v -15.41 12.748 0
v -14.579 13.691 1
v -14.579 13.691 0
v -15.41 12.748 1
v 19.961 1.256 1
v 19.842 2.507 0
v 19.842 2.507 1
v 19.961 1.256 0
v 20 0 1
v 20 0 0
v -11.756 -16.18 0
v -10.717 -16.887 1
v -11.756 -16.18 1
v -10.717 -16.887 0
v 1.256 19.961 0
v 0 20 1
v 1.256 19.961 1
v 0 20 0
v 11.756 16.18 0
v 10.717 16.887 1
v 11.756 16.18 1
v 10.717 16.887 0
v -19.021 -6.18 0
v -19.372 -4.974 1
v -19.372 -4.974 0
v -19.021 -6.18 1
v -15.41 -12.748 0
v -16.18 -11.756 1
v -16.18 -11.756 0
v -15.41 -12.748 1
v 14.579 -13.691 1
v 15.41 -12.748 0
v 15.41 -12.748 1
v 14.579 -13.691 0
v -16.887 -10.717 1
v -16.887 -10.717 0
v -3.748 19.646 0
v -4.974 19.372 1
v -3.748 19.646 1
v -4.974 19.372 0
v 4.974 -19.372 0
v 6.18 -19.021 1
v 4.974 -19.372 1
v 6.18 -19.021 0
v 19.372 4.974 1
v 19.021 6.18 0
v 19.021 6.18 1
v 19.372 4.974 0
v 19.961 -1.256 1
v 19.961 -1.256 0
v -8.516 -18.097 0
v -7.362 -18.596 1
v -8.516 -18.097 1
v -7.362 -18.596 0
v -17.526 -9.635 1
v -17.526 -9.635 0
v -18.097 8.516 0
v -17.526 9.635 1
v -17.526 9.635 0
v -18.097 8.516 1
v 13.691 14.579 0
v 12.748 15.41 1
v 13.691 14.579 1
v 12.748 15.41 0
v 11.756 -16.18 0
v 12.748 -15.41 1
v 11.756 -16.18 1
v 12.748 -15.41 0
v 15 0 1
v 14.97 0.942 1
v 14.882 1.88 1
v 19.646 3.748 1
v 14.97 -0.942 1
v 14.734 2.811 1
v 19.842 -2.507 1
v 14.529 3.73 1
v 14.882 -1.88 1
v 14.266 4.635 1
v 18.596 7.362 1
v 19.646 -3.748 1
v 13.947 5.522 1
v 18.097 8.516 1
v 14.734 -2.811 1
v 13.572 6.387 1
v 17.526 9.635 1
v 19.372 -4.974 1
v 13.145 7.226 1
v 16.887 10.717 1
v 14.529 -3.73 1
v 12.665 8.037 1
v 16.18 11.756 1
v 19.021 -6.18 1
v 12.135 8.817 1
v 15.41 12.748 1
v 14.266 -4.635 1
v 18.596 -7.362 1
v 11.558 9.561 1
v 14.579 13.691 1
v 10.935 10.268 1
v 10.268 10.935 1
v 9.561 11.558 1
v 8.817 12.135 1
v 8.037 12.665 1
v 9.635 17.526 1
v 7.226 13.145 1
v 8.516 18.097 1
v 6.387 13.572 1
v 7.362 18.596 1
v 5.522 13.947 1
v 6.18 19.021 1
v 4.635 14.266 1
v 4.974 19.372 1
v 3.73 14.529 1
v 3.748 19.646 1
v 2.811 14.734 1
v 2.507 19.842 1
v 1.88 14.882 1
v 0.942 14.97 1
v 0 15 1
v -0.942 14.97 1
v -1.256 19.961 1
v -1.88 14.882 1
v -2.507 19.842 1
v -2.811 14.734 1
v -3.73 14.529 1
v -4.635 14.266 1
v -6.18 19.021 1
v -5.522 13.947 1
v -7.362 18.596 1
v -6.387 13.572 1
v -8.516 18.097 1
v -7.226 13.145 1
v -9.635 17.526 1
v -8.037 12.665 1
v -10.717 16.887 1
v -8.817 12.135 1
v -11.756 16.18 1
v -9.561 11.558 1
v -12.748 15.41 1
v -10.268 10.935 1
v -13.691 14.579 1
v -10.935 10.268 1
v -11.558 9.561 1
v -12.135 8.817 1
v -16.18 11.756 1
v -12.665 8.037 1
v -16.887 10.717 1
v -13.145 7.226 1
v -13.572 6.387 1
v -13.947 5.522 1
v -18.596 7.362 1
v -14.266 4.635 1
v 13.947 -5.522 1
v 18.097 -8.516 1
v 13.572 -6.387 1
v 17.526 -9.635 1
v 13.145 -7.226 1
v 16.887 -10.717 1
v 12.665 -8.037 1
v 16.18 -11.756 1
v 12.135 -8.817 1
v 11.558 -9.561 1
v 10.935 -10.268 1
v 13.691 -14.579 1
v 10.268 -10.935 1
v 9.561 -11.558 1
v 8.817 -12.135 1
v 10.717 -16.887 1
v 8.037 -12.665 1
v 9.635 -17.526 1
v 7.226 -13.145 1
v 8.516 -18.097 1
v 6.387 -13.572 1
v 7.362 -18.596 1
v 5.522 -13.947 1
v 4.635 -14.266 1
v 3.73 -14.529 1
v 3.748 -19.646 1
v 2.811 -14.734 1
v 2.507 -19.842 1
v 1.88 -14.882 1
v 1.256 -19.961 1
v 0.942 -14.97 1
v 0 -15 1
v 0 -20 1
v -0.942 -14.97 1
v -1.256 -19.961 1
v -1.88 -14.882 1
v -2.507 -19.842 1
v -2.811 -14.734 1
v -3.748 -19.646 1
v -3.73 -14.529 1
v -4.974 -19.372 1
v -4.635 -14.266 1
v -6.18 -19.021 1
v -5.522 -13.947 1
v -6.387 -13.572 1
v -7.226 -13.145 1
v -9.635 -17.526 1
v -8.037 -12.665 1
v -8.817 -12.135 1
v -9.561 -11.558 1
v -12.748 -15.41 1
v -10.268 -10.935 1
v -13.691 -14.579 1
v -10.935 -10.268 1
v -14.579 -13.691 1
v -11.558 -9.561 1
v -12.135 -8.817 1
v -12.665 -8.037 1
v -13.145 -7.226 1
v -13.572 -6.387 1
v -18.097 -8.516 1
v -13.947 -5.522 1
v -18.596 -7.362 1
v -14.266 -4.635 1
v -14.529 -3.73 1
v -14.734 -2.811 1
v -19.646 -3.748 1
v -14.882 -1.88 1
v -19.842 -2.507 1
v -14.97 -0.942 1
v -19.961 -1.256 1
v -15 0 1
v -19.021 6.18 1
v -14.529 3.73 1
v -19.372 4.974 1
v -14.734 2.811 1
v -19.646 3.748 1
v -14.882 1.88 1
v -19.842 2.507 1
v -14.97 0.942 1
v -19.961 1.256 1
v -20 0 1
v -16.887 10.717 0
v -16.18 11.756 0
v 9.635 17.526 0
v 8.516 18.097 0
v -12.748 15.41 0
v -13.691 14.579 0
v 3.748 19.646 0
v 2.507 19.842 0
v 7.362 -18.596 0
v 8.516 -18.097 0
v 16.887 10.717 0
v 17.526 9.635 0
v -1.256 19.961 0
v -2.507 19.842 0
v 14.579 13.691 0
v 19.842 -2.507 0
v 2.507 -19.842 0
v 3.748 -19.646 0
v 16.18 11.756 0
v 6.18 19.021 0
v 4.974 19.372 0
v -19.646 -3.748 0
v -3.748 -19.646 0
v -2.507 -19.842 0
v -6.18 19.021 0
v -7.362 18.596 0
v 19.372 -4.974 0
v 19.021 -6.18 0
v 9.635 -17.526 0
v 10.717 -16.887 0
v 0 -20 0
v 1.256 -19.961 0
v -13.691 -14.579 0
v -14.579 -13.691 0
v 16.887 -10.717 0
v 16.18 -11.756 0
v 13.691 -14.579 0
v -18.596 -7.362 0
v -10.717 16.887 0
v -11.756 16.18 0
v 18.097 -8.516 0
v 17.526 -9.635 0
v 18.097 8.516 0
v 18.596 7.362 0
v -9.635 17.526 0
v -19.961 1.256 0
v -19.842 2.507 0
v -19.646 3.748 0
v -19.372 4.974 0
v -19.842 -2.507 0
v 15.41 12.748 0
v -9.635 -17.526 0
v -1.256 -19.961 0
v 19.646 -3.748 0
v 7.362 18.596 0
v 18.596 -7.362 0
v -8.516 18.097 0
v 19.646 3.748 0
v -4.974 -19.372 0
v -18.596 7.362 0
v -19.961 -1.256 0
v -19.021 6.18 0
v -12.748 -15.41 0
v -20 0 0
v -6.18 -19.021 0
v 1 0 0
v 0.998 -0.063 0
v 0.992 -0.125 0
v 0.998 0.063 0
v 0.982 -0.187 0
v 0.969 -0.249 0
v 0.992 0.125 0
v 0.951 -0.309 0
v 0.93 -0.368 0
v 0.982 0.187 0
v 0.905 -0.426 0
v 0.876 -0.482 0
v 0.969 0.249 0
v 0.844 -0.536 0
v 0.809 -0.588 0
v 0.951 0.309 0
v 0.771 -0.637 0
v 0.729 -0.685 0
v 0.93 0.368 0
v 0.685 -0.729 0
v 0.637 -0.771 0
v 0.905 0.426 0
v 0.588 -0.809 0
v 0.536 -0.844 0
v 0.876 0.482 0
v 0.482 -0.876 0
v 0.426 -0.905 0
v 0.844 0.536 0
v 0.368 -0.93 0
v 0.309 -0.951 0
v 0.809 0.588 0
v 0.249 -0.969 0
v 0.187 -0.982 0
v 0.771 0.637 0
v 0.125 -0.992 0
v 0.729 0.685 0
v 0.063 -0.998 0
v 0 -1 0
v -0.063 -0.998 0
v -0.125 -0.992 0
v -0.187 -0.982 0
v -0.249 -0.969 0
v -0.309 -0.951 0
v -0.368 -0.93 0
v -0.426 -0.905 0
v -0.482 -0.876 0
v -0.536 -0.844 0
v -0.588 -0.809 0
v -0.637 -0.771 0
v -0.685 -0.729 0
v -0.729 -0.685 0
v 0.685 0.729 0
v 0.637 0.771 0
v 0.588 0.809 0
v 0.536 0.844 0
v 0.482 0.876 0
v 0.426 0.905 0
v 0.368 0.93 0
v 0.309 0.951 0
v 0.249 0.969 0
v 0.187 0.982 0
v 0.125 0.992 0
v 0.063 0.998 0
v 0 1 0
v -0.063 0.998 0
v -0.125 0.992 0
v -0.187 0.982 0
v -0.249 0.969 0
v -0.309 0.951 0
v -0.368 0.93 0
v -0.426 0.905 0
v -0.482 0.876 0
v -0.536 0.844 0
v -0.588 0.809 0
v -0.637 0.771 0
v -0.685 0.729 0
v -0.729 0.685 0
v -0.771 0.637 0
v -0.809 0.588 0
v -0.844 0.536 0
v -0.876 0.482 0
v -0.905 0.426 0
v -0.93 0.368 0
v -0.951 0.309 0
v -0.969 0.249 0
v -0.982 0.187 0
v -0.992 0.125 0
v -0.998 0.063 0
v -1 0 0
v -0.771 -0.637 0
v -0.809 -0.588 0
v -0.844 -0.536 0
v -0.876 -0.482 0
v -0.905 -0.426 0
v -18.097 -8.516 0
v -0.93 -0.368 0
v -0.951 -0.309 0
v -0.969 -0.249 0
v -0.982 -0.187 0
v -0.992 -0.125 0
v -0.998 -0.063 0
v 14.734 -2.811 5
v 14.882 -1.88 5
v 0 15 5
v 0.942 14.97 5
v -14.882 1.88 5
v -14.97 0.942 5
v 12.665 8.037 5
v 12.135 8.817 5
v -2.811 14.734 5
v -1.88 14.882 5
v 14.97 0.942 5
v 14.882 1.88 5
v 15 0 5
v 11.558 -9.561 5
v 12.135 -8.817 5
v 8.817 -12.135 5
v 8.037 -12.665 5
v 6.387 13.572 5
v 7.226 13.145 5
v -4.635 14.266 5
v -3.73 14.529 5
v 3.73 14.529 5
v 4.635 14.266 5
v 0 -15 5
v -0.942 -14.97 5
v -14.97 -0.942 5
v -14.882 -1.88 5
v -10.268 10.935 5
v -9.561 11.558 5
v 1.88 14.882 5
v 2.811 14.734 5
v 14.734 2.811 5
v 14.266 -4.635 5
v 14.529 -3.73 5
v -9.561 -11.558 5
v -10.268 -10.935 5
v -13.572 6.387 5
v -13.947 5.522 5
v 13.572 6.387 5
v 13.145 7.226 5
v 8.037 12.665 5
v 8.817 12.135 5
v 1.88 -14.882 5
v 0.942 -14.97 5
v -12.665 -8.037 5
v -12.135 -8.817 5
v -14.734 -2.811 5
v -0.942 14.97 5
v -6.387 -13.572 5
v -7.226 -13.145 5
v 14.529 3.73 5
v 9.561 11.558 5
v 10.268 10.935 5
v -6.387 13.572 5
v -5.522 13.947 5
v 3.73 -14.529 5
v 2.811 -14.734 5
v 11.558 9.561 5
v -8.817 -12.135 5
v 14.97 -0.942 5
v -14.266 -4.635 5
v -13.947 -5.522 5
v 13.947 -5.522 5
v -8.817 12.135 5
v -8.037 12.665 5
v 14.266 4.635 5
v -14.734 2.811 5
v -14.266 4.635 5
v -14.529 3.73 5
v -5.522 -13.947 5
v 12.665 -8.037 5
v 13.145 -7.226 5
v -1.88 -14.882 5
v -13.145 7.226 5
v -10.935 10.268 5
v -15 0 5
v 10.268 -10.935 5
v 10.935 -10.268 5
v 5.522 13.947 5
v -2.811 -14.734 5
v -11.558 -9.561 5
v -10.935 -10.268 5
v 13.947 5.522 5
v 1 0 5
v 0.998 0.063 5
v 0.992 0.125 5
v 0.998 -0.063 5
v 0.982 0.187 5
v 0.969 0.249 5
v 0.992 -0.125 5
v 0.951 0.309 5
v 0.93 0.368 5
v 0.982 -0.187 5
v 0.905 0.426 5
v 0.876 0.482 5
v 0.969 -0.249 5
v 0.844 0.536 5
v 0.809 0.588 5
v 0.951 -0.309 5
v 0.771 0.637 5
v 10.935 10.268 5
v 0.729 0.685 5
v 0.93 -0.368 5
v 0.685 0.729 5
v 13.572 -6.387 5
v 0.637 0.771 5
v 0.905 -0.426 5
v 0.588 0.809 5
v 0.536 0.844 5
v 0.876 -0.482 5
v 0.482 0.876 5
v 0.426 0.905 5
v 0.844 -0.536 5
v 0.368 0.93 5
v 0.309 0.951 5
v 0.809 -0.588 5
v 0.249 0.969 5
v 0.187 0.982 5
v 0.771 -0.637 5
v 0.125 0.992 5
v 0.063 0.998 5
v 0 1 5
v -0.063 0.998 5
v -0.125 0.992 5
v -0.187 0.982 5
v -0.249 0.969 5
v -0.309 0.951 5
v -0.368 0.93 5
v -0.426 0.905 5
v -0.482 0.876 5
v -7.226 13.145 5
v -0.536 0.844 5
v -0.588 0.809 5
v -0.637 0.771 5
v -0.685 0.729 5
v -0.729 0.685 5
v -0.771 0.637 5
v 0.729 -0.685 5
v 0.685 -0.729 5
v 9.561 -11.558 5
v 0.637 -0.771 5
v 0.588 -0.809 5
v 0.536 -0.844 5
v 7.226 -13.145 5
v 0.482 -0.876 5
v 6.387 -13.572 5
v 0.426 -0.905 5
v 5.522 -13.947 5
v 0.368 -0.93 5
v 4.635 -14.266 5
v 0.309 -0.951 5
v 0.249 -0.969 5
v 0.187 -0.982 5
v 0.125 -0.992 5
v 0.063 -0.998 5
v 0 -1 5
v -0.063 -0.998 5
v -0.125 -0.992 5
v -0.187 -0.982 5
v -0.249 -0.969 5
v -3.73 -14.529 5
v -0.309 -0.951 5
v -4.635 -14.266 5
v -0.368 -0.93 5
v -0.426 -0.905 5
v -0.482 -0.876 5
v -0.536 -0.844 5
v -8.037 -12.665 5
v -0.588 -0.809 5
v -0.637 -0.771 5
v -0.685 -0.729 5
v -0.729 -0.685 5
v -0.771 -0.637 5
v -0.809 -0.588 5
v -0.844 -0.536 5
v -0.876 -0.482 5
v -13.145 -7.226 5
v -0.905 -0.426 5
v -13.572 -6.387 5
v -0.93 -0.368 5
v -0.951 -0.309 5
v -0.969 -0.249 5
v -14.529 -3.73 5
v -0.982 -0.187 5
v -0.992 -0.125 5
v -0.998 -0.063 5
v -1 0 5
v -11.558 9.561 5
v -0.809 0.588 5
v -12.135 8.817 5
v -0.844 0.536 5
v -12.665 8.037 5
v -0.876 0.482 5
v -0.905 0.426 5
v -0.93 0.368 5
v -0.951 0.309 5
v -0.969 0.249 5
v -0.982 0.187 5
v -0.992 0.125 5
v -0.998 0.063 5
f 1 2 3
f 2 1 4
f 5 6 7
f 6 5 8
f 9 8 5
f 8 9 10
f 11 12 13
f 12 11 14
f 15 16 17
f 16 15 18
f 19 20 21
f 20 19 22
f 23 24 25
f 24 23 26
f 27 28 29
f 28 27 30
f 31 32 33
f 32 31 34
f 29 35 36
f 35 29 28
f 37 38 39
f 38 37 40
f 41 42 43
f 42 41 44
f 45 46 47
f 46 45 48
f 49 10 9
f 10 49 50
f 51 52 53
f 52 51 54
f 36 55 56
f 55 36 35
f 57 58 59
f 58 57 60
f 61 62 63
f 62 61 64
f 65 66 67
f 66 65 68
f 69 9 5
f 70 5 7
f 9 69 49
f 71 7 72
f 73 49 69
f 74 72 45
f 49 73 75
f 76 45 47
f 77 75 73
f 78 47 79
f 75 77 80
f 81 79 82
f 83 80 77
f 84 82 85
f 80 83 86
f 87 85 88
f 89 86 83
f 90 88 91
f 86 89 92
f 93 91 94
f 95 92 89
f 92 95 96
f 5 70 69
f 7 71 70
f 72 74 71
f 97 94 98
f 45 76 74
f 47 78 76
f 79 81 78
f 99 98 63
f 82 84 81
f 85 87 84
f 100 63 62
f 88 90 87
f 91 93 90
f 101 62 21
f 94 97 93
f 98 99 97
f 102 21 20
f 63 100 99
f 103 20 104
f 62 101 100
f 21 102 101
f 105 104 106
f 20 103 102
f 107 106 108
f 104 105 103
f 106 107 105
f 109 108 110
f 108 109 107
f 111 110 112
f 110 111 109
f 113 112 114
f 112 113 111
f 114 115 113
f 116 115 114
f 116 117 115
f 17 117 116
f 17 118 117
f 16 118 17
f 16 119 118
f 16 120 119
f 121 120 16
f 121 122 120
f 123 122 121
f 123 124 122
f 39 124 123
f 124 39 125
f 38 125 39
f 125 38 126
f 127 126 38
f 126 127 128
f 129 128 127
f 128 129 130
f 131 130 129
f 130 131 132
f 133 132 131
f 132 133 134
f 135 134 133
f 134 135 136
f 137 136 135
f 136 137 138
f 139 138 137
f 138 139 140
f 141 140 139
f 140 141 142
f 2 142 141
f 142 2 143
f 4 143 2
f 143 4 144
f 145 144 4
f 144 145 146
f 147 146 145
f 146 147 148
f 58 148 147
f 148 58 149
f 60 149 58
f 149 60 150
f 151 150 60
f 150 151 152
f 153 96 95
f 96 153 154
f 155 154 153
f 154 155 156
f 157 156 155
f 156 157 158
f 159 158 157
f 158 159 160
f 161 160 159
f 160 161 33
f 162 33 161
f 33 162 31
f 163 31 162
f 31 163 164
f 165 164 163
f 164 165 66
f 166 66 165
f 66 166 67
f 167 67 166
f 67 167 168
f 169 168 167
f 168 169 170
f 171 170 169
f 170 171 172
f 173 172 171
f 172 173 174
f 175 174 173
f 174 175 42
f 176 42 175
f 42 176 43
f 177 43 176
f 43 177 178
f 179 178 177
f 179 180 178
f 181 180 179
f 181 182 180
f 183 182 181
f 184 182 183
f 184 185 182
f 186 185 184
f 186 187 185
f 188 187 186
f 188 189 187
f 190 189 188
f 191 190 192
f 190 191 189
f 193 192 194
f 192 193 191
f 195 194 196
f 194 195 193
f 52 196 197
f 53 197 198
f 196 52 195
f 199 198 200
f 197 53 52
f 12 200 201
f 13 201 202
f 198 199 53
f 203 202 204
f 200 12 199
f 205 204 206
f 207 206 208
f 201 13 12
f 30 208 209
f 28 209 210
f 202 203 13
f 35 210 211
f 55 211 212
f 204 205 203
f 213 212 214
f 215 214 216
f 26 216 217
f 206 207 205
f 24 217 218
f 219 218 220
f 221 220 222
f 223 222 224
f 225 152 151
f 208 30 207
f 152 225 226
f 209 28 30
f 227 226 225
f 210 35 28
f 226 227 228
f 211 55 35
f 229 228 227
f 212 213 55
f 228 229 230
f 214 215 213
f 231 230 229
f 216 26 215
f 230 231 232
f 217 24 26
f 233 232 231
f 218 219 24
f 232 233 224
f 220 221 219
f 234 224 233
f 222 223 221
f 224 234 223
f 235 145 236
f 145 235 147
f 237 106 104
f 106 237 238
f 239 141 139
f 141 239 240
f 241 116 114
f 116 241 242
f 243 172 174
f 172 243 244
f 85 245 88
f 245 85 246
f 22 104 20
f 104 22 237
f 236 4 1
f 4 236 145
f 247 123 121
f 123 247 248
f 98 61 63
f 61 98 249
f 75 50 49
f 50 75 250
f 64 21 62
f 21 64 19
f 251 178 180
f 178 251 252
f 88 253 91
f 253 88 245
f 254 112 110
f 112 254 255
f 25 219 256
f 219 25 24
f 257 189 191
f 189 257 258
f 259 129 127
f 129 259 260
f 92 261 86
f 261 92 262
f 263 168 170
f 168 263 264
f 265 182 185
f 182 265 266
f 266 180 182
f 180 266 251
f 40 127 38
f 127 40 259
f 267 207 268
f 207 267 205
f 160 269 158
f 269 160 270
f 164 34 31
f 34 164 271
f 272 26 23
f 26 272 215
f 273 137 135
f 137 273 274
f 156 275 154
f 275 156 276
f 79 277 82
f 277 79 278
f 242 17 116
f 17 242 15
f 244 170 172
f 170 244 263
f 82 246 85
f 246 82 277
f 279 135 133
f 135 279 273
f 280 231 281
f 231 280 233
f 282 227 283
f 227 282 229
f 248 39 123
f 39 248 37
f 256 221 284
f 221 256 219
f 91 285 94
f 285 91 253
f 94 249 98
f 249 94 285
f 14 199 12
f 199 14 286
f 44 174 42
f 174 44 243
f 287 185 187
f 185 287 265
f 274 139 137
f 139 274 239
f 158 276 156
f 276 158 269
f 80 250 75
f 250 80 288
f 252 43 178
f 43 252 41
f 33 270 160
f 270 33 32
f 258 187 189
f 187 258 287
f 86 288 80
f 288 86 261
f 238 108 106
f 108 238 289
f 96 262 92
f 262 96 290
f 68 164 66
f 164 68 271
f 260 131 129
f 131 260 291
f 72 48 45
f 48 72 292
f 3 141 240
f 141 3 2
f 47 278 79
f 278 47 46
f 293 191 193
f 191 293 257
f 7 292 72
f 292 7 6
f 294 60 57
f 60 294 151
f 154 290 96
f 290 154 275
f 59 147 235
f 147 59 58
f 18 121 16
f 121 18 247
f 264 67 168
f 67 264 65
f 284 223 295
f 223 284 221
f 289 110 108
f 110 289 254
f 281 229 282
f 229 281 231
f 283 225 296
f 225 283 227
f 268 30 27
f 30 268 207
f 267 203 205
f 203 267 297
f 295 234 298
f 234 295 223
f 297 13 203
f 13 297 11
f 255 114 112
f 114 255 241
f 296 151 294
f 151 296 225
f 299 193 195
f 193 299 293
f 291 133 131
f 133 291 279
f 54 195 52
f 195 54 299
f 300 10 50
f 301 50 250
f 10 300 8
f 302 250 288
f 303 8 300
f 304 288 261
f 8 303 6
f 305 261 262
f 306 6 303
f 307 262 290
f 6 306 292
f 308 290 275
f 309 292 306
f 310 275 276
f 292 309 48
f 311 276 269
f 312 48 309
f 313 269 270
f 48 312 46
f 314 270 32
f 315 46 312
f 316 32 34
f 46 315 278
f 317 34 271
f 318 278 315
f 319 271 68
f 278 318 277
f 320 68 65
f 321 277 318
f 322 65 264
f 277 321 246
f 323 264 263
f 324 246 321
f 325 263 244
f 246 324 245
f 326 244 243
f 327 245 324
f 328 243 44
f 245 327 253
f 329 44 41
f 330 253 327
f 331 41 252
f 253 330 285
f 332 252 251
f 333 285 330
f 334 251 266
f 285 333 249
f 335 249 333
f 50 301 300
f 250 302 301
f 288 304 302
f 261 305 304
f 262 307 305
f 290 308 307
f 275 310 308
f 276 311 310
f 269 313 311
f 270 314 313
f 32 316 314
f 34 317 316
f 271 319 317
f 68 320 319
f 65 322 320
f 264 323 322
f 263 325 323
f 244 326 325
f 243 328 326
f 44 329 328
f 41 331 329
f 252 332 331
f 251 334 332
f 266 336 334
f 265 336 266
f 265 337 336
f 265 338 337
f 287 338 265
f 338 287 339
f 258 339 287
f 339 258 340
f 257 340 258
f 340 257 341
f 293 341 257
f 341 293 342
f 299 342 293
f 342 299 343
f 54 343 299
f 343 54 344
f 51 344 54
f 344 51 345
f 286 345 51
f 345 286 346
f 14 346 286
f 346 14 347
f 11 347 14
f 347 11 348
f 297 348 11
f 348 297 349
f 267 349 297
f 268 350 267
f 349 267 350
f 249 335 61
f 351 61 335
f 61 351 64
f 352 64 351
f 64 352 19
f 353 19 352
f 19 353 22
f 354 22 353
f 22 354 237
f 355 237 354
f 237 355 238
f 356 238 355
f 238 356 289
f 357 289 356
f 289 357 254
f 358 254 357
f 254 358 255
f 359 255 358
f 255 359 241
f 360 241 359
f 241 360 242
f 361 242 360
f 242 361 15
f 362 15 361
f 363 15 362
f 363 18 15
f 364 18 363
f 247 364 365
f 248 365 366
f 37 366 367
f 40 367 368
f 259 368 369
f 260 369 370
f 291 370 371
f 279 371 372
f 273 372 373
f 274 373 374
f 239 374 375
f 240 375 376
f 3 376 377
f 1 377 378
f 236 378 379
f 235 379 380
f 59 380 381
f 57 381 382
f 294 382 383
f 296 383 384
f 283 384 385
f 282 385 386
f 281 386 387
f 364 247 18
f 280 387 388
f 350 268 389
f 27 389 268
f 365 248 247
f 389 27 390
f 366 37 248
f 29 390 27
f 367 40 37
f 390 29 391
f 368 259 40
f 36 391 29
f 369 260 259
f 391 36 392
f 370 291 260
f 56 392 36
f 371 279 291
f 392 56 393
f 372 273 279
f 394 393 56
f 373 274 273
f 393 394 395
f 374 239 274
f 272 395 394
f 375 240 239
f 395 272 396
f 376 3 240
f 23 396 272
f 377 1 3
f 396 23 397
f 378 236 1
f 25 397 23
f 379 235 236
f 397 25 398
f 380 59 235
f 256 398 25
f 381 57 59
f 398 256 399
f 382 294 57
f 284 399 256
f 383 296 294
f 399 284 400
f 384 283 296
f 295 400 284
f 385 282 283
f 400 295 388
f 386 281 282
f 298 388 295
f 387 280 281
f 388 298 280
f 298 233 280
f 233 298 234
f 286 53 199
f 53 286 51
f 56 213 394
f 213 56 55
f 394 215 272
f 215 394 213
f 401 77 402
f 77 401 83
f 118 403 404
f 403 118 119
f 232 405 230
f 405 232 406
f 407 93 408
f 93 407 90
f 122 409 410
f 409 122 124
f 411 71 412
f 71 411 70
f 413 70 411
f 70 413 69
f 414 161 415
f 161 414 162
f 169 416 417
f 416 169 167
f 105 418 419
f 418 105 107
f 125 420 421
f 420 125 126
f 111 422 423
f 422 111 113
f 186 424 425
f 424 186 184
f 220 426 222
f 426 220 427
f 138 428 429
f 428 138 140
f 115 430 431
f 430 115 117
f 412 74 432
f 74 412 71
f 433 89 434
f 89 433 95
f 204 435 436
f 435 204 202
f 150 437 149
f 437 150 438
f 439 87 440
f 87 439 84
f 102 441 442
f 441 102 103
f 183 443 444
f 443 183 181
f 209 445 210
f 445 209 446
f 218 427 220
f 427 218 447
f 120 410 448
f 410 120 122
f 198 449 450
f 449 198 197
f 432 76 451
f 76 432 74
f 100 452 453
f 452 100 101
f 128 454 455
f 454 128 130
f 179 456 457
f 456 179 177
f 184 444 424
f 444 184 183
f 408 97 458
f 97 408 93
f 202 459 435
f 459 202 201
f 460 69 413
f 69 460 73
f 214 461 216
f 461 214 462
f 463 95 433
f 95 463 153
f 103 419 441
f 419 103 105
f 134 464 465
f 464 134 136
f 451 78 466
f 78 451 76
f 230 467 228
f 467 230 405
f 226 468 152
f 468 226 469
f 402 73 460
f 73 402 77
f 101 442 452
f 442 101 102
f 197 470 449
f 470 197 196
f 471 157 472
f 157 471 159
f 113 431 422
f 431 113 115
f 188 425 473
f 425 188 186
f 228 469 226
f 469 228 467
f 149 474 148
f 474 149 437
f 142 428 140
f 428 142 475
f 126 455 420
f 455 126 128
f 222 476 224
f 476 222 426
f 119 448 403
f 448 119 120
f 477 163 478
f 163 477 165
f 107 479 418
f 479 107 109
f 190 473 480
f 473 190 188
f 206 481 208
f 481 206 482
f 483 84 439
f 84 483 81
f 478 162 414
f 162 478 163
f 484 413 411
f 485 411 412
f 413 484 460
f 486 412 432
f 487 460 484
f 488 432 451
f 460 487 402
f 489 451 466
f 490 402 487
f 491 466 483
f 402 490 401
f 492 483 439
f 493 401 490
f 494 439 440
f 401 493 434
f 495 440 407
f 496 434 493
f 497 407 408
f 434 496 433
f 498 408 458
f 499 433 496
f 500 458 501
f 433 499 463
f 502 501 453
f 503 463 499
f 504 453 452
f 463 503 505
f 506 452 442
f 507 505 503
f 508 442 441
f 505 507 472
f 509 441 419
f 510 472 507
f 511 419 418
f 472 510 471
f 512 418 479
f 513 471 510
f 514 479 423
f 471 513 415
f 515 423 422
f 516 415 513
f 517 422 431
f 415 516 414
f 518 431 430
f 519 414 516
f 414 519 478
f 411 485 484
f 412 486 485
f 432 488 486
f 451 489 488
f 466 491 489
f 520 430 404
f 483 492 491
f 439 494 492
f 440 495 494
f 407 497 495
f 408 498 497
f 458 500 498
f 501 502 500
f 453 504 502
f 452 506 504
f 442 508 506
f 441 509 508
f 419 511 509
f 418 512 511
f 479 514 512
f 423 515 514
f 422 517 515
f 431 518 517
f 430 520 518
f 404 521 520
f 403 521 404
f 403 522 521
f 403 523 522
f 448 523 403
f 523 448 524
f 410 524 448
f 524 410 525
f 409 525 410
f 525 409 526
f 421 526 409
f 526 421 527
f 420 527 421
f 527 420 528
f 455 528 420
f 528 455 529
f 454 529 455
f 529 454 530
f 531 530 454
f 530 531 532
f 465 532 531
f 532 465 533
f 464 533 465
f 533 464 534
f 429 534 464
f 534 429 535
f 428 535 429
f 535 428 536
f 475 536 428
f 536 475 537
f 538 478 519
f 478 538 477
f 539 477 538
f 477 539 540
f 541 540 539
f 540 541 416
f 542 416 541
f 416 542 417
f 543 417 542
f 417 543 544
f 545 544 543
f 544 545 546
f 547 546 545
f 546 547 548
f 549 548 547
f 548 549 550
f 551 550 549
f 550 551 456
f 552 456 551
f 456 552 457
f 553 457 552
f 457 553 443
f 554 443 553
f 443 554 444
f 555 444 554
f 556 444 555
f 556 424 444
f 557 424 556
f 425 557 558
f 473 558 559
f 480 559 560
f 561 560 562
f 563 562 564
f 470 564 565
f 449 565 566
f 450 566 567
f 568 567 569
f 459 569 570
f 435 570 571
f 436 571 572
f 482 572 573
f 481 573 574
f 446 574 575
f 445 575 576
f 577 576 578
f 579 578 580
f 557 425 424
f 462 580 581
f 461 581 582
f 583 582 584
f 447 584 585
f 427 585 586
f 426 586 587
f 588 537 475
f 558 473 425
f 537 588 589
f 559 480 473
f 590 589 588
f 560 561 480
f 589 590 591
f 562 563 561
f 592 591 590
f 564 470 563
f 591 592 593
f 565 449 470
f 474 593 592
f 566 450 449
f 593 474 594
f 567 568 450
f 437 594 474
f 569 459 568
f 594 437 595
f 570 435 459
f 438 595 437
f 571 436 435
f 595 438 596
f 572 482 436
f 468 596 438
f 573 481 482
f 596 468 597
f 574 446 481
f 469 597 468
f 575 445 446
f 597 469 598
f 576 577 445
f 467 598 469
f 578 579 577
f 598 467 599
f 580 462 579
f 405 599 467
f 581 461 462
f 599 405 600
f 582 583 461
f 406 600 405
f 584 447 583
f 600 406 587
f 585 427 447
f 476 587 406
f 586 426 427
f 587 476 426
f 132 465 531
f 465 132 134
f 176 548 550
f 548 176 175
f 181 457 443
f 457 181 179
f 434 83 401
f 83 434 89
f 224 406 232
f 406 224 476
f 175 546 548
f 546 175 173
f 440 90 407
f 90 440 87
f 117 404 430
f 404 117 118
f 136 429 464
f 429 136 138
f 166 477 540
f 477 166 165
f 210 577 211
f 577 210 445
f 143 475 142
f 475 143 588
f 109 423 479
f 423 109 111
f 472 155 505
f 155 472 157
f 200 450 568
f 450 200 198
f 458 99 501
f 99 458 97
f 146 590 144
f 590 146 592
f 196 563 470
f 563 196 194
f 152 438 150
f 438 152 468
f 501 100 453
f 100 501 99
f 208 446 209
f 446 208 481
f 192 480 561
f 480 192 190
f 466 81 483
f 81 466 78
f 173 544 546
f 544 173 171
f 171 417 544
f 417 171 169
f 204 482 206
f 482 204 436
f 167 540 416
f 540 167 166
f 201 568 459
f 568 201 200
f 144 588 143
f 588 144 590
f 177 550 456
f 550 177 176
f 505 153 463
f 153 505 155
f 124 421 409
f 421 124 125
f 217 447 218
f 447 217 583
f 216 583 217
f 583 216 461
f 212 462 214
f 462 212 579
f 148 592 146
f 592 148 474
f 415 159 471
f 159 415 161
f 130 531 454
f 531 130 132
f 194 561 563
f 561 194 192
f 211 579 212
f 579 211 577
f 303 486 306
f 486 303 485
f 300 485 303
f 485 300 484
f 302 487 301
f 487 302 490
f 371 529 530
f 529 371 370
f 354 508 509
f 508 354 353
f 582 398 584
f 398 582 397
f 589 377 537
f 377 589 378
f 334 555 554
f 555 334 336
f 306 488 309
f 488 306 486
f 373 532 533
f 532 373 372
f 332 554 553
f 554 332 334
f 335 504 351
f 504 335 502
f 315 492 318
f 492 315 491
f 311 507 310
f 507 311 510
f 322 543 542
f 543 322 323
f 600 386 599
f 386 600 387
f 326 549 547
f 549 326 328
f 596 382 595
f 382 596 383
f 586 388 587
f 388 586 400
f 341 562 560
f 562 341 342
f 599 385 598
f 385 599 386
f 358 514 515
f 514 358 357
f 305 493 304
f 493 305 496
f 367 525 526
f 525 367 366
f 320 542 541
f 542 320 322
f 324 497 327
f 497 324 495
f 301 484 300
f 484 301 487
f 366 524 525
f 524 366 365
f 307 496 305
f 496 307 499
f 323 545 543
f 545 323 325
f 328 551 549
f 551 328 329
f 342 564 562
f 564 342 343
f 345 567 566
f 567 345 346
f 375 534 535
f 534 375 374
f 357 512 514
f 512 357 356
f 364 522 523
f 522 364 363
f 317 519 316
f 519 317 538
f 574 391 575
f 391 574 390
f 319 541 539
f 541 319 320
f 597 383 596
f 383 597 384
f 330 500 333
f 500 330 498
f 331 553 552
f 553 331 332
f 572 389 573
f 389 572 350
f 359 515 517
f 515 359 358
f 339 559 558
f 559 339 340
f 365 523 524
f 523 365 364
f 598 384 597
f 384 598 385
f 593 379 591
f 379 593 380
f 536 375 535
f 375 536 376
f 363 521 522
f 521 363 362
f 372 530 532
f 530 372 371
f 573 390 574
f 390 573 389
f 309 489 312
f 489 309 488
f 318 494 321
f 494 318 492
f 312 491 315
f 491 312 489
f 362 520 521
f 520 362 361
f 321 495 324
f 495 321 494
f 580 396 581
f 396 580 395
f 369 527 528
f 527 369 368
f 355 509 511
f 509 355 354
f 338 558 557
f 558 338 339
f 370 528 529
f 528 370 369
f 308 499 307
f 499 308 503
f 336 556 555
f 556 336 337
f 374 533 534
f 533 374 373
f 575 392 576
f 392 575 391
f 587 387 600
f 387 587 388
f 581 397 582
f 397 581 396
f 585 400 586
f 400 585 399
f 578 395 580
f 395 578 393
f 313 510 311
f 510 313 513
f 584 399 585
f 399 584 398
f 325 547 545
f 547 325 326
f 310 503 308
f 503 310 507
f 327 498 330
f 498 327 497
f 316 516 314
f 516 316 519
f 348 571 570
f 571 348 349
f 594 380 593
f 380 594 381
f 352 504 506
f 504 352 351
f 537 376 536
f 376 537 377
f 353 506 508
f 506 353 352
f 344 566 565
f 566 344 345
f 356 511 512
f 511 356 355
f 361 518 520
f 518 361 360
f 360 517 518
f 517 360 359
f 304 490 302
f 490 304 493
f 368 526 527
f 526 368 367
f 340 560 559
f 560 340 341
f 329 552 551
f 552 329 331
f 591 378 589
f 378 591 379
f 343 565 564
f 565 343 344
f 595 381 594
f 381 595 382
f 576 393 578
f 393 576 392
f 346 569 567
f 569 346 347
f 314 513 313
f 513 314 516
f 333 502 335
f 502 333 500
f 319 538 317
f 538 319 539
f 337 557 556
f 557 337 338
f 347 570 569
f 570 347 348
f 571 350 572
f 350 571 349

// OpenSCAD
res=100;
r_splh=1;
alt=100;

difference(){
    translate([0,0,0]){
        cylinder(1,20,20,$fn=res);
        cylinder(5,15,15,$fn=res);
    }
    #translate([0,0,-15])
    #cylinder(alt,r_splh,r_splh,$fn=res);
}
